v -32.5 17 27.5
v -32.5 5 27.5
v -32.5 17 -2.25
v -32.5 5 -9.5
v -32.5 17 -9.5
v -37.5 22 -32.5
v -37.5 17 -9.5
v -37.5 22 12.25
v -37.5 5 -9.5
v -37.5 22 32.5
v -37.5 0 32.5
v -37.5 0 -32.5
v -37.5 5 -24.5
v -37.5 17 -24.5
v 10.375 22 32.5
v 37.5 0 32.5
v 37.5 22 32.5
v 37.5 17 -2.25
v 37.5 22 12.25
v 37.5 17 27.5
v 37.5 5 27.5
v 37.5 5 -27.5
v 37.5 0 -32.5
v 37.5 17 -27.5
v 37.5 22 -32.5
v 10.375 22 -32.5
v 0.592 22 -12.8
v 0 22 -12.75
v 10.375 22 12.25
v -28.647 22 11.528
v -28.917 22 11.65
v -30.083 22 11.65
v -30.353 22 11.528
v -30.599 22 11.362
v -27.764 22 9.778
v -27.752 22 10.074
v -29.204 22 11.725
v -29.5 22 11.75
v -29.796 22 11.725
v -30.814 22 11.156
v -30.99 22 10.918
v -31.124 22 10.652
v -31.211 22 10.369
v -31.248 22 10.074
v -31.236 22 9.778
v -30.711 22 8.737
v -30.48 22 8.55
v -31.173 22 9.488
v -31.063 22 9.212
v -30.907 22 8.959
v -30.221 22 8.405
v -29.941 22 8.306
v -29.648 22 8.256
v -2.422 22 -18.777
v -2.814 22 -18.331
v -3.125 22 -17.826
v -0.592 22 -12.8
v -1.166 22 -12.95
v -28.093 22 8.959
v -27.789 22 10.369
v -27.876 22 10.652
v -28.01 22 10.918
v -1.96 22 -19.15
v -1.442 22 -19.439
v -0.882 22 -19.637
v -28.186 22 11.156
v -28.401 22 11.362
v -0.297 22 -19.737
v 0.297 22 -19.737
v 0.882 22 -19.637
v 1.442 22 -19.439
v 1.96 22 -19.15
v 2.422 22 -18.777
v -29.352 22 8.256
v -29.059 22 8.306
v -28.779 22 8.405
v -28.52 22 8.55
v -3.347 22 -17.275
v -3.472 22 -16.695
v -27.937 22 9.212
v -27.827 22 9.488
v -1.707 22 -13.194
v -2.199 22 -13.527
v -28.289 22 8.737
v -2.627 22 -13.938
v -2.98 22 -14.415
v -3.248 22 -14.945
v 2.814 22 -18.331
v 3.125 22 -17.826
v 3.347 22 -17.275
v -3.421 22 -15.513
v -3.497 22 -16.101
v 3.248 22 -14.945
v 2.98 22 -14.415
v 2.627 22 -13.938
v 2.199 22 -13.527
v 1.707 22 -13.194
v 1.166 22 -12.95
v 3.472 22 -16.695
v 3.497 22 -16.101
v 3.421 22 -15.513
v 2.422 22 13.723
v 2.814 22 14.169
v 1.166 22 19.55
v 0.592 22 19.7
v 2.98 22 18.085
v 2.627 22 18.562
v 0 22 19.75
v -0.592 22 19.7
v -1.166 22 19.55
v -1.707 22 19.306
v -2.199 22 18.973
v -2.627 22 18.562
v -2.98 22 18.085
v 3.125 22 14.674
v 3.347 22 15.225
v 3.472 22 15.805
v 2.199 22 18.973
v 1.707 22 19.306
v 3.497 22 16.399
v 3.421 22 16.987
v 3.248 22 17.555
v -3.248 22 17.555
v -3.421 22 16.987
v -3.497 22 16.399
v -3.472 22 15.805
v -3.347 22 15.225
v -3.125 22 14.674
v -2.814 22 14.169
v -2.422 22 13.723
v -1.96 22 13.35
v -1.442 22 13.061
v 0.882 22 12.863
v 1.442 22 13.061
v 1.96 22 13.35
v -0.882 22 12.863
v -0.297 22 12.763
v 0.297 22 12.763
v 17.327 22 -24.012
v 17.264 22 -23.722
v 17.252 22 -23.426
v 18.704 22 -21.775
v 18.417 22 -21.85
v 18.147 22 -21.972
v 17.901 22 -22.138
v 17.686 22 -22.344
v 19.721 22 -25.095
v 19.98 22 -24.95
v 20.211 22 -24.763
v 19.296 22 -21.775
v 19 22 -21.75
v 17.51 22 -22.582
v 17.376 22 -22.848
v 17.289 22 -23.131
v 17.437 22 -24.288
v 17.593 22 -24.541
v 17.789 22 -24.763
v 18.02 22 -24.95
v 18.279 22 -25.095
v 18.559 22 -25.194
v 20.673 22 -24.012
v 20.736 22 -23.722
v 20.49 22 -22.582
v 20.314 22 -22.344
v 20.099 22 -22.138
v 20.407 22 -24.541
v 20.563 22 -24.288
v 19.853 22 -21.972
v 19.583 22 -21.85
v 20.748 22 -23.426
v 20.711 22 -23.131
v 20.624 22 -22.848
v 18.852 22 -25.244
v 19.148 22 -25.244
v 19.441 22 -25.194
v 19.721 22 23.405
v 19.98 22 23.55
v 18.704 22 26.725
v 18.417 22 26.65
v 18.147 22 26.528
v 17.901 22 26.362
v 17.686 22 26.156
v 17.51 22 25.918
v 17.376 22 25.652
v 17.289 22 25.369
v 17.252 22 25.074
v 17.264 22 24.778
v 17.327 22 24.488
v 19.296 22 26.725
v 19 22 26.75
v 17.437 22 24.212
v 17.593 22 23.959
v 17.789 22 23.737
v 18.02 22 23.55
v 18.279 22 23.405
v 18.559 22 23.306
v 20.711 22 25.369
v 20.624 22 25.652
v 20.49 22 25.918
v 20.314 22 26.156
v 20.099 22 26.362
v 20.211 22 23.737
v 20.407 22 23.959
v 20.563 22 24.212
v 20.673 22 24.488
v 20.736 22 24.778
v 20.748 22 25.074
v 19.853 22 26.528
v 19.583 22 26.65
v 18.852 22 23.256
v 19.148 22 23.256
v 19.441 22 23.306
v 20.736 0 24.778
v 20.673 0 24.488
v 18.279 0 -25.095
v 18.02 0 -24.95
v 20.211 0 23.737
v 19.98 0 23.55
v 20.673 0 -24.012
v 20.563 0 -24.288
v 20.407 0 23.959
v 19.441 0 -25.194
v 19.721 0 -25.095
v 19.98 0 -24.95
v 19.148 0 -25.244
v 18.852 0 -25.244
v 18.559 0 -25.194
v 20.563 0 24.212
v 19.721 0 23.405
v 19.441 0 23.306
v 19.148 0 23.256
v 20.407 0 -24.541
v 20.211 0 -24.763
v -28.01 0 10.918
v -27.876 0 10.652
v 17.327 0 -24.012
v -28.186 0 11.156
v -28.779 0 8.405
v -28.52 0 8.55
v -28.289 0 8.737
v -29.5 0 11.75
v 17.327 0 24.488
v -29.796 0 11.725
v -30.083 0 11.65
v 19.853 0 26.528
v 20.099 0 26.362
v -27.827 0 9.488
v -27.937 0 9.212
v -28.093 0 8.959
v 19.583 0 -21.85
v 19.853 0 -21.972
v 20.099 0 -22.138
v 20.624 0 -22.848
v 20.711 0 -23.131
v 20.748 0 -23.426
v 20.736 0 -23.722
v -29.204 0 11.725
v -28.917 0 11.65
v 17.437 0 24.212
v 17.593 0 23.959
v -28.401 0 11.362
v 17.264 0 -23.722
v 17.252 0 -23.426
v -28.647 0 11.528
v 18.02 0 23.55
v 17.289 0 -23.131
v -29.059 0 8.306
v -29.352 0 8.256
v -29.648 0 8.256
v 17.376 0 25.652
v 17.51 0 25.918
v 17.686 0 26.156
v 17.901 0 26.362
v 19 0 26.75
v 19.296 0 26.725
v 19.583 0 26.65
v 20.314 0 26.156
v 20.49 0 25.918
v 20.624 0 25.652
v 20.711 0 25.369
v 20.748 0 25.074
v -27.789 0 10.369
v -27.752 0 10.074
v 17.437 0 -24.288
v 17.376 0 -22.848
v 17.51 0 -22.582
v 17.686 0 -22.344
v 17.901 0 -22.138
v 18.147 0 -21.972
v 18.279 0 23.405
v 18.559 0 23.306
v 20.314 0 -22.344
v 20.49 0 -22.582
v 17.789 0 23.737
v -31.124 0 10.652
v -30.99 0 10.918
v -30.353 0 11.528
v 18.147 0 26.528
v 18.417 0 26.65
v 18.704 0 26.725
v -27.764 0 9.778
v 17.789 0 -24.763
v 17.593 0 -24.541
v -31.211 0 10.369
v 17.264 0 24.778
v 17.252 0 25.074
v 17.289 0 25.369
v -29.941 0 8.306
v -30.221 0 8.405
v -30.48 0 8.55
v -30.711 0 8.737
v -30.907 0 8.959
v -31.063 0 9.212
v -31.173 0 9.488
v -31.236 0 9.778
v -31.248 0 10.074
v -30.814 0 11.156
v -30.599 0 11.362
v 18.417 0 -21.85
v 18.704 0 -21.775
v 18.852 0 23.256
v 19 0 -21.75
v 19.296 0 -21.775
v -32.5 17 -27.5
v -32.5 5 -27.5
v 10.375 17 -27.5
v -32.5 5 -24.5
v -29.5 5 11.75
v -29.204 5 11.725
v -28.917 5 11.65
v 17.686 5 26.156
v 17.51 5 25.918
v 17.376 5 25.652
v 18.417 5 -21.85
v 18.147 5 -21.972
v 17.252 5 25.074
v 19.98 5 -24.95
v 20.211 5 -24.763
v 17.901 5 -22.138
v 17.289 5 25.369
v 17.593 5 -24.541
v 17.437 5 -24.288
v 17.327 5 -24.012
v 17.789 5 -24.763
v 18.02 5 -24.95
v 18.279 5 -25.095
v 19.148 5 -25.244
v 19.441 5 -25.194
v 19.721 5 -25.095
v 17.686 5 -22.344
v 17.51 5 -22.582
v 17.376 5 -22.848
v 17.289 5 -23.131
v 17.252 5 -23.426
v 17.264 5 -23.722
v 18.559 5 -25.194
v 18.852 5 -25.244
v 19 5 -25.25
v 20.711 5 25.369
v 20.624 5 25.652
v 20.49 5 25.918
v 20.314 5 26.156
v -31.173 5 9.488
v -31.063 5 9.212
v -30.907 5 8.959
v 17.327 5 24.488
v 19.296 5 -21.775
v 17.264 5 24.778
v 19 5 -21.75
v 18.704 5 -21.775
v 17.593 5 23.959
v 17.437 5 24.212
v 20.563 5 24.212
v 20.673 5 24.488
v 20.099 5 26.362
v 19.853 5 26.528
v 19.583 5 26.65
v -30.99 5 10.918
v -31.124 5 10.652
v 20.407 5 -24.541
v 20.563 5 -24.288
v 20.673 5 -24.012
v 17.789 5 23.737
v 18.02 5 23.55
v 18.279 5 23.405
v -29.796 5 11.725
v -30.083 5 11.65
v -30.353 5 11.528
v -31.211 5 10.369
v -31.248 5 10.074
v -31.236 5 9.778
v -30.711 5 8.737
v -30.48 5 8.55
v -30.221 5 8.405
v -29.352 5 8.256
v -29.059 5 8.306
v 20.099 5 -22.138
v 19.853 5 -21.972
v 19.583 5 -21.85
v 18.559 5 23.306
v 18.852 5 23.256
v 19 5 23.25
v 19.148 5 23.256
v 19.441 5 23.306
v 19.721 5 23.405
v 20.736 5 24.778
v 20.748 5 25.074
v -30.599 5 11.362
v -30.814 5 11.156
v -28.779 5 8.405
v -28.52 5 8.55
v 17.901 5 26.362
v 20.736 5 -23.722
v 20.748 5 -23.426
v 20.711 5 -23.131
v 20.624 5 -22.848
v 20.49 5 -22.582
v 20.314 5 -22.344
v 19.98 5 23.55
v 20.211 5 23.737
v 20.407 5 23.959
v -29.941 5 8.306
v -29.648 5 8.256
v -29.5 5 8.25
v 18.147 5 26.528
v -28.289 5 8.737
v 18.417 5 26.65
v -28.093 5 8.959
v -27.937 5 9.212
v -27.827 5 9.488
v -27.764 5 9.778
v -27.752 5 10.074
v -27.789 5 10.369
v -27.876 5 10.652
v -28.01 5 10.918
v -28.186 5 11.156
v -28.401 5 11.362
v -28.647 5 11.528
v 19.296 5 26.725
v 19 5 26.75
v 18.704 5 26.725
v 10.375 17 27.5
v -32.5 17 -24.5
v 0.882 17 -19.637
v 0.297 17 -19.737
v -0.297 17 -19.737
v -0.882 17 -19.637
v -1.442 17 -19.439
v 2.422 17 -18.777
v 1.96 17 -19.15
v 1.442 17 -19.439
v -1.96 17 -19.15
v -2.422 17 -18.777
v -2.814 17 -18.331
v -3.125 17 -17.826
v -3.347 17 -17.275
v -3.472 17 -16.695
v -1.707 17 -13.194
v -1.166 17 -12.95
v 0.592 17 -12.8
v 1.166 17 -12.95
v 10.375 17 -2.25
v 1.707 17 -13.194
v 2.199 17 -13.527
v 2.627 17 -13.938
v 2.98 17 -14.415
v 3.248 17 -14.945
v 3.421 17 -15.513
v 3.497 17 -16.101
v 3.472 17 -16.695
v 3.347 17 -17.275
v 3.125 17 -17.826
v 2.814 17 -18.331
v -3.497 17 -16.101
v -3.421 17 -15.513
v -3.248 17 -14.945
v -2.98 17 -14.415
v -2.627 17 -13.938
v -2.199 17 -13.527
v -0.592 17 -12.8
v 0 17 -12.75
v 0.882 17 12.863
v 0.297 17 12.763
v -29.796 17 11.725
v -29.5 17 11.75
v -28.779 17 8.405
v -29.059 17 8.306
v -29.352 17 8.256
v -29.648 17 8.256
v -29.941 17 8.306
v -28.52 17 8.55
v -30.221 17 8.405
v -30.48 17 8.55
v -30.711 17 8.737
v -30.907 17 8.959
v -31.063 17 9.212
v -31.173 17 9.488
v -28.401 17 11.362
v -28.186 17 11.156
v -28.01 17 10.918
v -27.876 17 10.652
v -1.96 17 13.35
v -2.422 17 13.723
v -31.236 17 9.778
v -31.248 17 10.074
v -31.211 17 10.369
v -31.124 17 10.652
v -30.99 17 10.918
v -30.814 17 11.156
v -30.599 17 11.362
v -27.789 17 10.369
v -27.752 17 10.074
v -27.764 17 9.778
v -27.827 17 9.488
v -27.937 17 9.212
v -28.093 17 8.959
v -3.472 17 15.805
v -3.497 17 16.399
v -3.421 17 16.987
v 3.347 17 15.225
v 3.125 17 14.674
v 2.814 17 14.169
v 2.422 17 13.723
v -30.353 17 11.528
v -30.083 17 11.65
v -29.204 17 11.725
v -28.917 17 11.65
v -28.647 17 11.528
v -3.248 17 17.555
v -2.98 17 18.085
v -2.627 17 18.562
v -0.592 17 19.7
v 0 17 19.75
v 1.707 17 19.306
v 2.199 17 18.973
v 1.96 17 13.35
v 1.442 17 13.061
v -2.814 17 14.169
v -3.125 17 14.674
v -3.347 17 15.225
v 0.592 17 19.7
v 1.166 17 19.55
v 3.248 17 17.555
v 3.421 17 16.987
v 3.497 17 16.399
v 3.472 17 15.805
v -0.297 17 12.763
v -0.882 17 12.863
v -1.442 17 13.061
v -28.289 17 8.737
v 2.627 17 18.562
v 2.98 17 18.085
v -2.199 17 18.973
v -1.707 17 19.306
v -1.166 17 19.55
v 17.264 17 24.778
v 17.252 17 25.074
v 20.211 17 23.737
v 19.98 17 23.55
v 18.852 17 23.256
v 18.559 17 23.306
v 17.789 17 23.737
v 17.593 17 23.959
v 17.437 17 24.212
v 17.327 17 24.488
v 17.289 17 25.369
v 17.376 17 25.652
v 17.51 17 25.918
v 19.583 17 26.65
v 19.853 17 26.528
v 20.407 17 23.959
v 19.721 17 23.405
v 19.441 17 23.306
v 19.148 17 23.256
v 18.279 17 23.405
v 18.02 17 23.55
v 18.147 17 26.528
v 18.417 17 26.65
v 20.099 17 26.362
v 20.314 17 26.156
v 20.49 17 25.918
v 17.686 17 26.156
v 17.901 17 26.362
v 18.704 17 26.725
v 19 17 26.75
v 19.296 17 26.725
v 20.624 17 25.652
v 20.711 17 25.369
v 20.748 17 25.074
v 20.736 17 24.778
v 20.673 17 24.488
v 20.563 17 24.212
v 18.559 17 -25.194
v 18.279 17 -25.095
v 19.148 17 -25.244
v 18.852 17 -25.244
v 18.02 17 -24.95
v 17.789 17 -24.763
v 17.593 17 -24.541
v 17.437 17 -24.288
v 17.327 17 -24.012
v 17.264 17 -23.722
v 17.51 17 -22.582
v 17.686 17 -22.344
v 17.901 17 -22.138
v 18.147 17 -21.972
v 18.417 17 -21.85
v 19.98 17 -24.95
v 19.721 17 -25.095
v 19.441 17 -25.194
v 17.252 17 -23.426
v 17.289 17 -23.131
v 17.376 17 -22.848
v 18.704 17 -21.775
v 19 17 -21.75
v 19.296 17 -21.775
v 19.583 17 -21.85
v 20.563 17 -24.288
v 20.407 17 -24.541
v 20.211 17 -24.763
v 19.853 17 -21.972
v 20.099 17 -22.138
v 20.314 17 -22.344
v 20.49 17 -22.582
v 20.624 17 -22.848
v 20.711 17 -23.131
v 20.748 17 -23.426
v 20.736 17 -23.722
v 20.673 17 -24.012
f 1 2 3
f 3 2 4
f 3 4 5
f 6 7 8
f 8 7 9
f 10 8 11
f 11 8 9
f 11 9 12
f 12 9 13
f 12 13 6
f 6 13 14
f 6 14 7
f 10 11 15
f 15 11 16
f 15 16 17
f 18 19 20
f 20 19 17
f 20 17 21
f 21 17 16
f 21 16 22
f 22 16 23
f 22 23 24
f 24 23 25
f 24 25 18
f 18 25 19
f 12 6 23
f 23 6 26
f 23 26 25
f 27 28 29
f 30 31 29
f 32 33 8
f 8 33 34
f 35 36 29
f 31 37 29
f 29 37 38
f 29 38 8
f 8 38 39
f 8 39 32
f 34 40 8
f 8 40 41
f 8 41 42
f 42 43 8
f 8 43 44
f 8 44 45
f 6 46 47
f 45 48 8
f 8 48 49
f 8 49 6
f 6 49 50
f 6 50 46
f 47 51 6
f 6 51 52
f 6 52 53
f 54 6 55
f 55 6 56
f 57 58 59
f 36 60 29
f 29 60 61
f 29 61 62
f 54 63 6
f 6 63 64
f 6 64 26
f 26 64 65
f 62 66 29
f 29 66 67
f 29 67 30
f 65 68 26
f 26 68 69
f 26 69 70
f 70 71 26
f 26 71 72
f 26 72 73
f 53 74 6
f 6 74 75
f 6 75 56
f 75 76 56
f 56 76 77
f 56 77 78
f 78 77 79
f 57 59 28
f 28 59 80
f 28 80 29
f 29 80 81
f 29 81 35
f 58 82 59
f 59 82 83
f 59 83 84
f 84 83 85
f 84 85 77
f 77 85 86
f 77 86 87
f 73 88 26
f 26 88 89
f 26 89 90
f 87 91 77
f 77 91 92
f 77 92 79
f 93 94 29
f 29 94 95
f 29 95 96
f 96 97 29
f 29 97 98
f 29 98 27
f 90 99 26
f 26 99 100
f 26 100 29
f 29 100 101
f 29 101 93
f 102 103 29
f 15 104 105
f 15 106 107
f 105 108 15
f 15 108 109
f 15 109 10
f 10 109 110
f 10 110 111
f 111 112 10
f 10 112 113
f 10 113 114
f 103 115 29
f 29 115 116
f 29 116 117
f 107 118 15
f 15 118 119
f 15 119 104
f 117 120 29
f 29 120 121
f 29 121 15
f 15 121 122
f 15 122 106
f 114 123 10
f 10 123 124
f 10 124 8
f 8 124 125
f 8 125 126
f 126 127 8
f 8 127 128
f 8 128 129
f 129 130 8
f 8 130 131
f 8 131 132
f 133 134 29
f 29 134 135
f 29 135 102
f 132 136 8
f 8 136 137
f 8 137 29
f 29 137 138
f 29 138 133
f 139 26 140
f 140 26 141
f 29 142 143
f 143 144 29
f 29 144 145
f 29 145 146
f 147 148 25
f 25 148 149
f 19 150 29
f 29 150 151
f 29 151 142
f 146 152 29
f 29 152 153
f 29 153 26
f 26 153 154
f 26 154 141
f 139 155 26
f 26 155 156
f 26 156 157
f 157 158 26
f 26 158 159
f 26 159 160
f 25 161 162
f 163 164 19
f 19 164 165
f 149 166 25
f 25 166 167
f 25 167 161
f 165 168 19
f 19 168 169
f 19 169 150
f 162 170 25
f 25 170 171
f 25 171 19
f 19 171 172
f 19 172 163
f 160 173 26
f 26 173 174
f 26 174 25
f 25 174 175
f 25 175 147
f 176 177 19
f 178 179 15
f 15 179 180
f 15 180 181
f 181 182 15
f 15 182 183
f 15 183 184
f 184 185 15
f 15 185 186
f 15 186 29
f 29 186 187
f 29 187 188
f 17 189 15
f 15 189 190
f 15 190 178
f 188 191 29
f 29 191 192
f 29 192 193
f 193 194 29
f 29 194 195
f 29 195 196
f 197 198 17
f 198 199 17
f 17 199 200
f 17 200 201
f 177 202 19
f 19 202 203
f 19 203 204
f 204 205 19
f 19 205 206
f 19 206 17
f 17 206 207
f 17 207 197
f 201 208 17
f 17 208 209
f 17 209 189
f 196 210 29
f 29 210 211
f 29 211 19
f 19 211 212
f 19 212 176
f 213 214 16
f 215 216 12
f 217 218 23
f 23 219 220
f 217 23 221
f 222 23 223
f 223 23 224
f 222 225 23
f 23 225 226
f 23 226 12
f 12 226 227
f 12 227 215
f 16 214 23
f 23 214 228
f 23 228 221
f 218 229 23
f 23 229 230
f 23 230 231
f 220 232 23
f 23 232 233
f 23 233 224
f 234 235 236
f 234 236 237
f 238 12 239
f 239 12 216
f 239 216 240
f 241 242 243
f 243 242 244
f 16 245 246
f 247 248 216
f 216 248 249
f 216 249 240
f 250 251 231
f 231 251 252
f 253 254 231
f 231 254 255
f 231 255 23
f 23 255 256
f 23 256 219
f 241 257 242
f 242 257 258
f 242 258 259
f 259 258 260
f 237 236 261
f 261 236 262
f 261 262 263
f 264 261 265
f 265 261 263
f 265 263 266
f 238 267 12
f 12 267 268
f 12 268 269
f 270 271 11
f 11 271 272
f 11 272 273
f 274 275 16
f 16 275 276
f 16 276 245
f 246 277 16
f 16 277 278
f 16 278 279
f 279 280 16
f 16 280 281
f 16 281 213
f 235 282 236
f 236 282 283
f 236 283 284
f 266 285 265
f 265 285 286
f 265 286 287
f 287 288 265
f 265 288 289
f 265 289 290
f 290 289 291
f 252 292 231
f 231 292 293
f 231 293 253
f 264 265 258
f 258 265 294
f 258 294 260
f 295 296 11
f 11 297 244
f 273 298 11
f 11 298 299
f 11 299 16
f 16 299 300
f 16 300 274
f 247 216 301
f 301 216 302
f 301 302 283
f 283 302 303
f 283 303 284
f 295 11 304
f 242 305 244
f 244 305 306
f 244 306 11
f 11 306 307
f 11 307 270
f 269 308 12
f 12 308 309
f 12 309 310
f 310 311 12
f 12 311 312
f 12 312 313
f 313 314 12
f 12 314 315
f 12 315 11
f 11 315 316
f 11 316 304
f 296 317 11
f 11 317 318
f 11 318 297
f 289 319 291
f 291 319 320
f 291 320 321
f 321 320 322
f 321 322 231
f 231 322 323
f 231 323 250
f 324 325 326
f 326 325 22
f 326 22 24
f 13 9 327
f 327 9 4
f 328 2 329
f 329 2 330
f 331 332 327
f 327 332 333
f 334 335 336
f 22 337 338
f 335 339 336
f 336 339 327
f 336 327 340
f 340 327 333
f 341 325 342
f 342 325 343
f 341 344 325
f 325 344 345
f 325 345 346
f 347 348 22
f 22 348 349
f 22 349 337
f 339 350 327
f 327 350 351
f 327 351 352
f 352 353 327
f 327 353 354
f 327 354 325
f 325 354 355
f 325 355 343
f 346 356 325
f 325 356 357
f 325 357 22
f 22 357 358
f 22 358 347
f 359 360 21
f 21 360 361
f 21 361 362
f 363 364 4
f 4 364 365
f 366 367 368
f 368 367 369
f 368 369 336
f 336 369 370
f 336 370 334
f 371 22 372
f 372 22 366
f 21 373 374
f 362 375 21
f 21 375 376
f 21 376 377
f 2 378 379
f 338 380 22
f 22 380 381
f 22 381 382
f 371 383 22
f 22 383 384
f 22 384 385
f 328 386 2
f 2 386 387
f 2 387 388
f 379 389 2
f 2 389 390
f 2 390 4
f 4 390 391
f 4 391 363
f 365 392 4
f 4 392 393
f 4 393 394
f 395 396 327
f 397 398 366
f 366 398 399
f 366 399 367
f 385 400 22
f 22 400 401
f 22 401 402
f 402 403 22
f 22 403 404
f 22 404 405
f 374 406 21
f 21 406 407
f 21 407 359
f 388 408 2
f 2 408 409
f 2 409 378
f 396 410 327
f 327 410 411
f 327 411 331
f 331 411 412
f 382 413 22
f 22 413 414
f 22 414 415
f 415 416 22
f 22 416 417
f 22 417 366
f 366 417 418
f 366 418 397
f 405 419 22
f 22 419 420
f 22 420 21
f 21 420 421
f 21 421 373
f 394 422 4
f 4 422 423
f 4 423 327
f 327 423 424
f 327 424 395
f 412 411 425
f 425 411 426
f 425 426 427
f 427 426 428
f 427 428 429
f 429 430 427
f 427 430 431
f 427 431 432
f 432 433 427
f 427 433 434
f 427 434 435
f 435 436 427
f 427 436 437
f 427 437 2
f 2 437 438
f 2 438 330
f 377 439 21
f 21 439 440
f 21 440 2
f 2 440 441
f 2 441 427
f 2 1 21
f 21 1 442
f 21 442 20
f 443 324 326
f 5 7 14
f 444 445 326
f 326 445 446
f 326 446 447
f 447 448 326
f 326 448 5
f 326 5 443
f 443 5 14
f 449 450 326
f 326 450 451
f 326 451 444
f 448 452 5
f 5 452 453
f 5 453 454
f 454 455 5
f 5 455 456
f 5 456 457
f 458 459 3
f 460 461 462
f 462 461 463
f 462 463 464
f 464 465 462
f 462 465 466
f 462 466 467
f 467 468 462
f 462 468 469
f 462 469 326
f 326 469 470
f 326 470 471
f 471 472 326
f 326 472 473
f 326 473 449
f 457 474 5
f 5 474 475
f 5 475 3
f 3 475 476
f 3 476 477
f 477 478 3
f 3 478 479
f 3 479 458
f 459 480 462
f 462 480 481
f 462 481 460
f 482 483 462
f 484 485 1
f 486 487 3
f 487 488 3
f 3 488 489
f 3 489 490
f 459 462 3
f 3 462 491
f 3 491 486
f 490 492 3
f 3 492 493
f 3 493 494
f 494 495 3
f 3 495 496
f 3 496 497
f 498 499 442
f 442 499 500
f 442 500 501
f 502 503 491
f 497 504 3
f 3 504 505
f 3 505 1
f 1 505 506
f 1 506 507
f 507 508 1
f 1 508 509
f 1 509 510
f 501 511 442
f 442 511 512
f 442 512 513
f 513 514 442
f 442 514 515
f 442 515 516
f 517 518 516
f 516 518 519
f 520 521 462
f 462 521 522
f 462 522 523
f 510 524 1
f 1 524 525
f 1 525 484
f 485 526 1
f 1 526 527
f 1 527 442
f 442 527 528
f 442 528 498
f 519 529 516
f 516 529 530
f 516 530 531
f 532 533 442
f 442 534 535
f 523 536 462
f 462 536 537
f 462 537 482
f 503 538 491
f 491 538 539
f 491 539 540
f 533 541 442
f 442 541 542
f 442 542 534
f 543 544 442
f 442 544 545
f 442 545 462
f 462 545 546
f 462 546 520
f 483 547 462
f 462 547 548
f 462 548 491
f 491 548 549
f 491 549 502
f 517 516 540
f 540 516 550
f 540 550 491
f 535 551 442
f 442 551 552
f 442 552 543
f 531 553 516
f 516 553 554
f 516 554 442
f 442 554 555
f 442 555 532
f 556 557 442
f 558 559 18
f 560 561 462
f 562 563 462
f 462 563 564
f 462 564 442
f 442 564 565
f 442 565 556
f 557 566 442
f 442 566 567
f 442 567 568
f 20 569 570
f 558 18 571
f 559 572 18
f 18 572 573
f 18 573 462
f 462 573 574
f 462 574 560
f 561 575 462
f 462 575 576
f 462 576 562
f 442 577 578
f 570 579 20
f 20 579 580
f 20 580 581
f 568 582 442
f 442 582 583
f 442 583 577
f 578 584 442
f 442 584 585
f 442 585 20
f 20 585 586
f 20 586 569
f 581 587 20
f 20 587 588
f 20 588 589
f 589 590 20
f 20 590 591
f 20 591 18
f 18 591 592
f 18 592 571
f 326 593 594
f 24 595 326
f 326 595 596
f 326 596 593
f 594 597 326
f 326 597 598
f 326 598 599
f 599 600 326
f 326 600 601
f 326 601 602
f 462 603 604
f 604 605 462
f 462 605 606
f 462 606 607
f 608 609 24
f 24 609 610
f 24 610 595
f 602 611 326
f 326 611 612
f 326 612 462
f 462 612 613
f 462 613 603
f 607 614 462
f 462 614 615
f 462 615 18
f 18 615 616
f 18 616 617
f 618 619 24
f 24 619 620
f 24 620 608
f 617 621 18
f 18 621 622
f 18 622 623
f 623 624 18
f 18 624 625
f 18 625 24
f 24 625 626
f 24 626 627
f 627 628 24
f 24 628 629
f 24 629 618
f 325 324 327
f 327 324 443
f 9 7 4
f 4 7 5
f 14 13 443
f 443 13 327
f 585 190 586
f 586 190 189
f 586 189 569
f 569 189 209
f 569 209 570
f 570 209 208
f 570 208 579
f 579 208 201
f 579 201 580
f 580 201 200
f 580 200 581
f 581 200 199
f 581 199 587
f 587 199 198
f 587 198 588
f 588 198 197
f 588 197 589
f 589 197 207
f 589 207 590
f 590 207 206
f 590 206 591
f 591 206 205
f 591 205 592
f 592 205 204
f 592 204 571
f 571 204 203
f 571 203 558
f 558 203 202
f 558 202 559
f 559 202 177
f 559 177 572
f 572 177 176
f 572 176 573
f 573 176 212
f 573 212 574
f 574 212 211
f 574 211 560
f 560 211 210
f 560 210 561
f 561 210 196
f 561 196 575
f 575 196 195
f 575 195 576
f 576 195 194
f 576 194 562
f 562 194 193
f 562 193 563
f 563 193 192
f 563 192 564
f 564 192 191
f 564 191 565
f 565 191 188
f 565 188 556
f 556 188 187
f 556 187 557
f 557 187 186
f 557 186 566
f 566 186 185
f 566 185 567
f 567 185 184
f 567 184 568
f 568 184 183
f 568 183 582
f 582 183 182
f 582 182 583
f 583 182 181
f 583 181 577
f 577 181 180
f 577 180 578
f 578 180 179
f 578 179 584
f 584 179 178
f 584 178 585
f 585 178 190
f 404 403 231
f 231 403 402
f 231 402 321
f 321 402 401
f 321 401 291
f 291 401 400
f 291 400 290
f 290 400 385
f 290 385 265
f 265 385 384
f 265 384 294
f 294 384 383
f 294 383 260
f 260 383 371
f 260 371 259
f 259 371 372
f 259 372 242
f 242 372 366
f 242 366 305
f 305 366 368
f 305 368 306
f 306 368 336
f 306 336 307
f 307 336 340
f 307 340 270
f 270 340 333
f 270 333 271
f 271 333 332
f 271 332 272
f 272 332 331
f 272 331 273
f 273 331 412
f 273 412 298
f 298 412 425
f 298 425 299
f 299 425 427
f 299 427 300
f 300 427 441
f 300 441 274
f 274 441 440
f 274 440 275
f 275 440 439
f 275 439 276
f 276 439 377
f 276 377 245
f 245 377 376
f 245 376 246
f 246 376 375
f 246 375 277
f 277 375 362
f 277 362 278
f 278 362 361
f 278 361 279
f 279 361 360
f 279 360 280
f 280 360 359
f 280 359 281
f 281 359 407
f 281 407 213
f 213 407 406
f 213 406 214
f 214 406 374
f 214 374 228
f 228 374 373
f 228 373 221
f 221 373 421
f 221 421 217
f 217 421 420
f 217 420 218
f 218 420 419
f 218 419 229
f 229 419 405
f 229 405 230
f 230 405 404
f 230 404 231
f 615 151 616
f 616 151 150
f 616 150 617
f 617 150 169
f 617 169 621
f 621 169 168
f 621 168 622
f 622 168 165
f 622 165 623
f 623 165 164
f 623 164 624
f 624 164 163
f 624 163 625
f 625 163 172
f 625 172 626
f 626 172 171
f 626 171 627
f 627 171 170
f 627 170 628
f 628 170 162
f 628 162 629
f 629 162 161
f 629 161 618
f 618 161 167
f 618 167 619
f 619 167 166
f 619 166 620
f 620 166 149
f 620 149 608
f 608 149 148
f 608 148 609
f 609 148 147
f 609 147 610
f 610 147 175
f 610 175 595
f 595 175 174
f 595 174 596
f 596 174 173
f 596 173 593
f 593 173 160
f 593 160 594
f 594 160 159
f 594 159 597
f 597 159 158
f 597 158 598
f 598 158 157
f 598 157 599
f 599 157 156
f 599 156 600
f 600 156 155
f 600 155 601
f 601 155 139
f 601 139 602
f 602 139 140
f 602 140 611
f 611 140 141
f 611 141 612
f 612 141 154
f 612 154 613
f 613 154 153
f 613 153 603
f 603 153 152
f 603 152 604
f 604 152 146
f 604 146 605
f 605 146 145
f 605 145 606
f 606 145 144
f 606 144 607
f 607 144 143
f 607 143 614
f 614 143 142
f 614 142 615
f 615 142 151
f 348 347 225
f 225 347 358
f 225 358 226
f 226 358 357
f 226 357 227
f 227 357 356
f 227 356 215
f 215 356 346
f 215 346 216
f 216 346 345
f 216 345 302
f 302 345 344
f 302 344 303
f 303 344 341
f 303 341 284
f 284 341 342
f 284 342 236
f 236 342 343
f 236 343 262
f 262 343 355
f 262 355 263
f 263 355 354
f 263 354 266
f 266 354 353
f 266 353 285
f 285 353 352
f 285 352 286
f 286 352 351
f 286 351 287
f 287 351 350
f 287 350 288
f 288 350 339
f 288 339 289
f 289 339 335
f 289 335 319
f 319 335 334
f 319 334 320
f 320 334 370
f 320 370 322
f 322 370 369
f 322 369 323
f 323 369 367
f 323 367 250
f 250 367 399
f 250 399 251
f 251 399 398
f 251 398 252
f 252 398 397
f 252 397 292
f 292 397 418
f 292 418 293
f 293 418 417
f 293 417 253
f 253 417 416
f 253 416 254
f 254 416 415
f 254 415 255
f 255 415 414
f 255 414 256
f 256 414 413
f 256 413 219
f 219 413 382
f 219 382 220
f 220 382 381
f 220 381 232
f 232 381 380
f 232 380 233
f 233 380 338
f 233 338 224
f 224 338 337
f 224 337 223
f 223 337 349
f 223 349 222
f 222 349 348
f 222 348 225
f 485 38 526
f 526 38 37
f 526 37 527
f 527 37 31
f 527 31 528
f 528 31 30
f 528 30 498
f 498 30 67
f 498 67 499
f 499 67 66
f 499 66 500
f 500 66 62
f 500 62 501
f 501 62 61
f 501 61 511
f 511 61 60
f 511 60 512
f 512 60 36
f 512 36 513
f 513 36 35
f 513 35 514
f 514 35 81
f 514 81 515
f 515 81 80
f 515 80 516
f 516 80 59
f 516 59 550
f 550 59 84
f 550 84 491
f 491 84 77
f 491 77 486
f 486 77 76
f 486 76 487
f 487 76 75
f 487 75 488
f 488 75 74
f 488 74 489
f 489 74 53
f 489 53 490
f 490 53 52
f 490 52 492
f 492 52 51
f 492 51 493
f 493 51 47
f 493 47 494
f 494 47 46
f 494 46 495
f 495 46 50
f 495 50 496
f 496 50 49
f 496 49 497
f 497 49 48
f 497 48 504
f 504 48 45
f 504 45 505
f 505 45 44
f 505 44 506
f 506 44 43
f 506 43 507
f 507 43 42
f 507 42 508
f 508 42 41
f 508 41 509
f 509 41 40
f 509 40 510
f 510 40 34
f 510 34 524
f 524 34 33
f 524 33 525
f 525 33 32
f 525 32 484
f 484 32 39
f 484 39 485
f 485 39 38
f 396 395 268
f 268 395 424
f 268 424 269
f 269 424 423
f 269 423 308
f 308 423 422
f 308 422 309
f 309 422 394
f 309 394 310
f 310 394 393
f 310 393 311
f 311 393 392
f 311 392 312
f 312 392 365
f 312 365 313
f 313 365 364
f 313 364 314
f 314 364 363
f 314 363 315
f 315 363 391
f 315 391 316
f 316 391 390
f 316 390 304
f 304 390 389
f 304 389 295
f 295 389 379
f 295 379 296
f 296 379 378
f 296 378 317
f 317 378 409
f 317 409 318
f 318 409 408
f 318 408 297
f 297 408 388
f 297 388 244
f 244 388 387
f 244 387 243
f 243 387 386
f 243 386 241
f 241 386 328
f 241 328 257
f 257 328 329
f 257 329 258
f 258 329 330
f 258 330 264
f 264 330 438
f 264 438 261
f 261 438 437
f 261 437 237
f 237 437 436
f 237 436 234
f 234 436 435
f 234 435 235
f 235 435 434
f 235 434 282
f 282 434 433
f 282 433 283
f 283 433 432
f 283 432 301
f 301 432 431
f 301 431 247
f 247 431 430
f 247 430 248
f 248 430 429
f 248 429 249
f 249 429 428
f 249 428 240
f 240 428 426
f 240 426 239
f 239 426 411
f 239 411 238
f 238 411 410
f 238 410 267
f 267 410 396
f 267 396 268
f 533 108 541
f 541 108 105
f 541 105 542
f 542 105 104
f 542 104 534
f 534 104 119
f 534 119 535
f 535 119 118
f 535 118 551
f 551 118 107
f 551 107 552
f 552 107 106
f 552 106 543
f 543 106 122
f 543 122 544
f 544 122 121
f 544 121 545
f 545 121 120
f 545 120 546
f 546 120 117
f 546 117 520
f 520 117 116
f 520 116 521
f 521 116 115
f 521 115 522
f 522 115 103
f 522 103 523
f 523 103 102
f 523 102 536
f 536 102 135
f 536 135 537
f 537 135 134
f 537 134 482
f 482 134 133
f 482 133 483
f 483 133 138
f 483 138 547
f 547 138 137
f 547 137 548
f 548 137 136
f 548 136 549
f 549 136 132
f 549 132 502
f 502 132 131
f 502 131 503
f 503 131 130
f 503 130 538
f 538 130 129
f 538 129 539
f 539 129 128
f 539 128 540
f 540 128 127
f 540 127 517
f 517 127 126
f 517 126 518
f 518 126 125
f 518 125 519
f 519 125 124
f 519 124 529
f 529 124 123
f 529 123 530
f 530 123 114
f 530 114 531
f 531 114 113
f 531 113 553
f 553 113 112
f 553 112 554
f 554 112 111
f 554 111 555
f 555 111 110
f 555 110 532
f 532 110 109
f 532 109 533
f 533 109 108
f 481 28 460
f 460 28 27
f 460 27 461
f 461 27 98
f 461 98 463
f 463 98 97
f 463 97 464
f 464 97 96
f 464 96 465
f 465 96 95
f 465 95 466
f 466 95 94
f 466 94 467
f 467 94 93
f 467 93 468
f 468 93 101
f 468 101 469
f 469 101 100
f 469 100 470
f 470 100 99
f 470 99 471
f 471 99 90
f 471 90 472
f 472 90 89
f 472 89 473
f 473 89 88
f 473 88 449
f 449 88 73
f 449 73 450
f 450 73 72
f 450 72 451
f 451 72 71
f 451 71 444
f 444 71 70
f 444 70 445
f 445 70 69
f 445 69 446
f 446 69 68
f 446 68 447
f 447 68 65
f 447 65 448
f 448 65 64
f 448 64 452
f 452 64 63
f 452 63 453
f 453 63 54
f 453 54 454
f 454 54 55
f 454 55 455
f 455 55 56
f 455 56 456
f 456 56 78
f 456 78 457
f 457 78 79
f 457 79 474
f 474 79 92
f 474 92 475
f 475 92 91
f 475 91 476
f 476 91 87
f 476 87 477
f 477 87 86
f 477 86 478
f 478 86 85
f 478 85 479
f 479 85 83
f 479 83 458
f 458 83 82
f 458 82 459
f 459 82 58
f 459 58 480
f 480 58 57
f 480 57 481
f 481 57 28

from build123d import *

# Parameters (mm, degrees)
SKETCH1_W           = 75
SKETCH1_H           = 65
BOSS_EXTRUDE1_DEPTH = 22
SKETCH2_W           = 55
SKETCH2_H           = 12
CUT_EXTRUDE1_DEPTH  = 70
SKETCH3_W           = 15
SKETCH3_H           = 12
CUT_EXTRUDE2_DEPTH  = 85.647799735
SKETCH4_R           = 1.75
CUT_EXTRUDE3_DEPTH  = 55.281672782
SKETCH7_R           = 1.75
CUT_EXTRUDE5_DEPTH  = 55.281672782
SKETCH8_R           = 1.75
CUT_EXTRUDE6_DEPTH  = 55.281672782
SKETCH9_R           = 3.5
CUT_EXTRUDE7_DEPTH  = 6
SKETCH10_R          = 3.5
CUT_EXTRUDE8_DEPTH  = 6


with BuildPart() as part:
    # Sketch1 → Boss-Extrude1 (new body)
    with BuildSketch(Plane(origin=(0, 0, 0), x_dir=(1, 0, 0), z_dir=(0, 1, 0))):
        Rectangle(SKETCH1_W, SKETCH1_H)
    extrude(amount=BOSS_EXTRUDE1_DEPTH)

    # Sketch2 → Cut-Extrude1 (cut)
    with BuildSketch(Plane(origin=(37.5, 0, 0), x_dir=(0, 0, -1), z_dir=(1, 0, 0))):
        with Locations((0, 11)):
            Rectangle(SKETCH2_W, SKETCH2_H)
    extrude(amount=-CUT_EXTRUDE1_DEPTH, mode=Mode.SUBTRACT)

    # Sketch3 → Cut-Extrude2 (cut, through all)
    with BuildSketch(Plane.ZY.offset(37.5)):
        with Locations((-17, 11)):
            Rectangle(SKETCH3_W, SKETCH3_H)
    extrude(amount=-CUT_EXTRUDE2_DEPTH, mode=Mode.SUBTRACT)

    # Sketch4 → Cut-Extrude3 (cut, through all)
    with BuildSketch(Plane(origin=(0, 22, 0), x_dir=(1, 0, 0), z_dir=(0, 1, 0))):
        with Locations(Location((19, -25, 0), (0, 0, 270))):
            Circle(SKETCH4_R)
    extrude(amount=-CUT_EXTRUDE3_DEPTH, mode=Mode.SUBTRACT)

    # Sketch7 → Cut-Extrude5 (cut, through all)
    with BuildSketch(Plane(origin=(0, 22, 0), x_dir=(1, 0, 0), z_dir=(0, 1, 0))):
        with Locations(Location((19, 23.5, 0), (0, 0, 270))):
            Circle(SKETCH7_R)
    extrude(amount=-CUT_EXTRUDE5_DEPTH, mode=Mode.SUBTRACT)

    # Sketch8 → Cut-Extrude6 (cut, through all)
    with BuildSketch(Plane(origin=(0, 22, 0), x_dir=(1, 0, 0), z_dir=(0, 1, 0))):
        with Locations(Location((-29.5, -10, 0), (0, 0, 270))):
            Circle(SKETCH8_R)
    extrude(amount=-CUT_EXTRUDE6_DEPTH, mode=Mode.SUBTRACT)

    # Sketch9 → Cut-Extrude7 (cut)
    with BuildSketch(Plane(origin=(0, 22, 0), x_dir=(1, 0, 0), z_dir=(0, 1, 0))):
        with Locations(Location((0, -16.25, 0), (0, 0, 270))):
            Circle(SKETCH9_R)
    extrude(amount=-CUT_EXTRUDE7_DEPTH, mode=Mode.SUBTRACT)

    # Sketch10 → Cut-Extrude8 (cut)
    with BuildSketch(Plane(origin=(0, 22, 0), x_dir=(1, 0, 0), z_dir=(0, 1, 0))):
        with Locations(Location((0, 16.25, 0), (0, 0, 270))):
            Circle(SKETCH10_R)
    extrude(amount=-CUT_EXTRUDE8_DEPTH, mode=Mode.SUBTRACT)


solid = part.part
